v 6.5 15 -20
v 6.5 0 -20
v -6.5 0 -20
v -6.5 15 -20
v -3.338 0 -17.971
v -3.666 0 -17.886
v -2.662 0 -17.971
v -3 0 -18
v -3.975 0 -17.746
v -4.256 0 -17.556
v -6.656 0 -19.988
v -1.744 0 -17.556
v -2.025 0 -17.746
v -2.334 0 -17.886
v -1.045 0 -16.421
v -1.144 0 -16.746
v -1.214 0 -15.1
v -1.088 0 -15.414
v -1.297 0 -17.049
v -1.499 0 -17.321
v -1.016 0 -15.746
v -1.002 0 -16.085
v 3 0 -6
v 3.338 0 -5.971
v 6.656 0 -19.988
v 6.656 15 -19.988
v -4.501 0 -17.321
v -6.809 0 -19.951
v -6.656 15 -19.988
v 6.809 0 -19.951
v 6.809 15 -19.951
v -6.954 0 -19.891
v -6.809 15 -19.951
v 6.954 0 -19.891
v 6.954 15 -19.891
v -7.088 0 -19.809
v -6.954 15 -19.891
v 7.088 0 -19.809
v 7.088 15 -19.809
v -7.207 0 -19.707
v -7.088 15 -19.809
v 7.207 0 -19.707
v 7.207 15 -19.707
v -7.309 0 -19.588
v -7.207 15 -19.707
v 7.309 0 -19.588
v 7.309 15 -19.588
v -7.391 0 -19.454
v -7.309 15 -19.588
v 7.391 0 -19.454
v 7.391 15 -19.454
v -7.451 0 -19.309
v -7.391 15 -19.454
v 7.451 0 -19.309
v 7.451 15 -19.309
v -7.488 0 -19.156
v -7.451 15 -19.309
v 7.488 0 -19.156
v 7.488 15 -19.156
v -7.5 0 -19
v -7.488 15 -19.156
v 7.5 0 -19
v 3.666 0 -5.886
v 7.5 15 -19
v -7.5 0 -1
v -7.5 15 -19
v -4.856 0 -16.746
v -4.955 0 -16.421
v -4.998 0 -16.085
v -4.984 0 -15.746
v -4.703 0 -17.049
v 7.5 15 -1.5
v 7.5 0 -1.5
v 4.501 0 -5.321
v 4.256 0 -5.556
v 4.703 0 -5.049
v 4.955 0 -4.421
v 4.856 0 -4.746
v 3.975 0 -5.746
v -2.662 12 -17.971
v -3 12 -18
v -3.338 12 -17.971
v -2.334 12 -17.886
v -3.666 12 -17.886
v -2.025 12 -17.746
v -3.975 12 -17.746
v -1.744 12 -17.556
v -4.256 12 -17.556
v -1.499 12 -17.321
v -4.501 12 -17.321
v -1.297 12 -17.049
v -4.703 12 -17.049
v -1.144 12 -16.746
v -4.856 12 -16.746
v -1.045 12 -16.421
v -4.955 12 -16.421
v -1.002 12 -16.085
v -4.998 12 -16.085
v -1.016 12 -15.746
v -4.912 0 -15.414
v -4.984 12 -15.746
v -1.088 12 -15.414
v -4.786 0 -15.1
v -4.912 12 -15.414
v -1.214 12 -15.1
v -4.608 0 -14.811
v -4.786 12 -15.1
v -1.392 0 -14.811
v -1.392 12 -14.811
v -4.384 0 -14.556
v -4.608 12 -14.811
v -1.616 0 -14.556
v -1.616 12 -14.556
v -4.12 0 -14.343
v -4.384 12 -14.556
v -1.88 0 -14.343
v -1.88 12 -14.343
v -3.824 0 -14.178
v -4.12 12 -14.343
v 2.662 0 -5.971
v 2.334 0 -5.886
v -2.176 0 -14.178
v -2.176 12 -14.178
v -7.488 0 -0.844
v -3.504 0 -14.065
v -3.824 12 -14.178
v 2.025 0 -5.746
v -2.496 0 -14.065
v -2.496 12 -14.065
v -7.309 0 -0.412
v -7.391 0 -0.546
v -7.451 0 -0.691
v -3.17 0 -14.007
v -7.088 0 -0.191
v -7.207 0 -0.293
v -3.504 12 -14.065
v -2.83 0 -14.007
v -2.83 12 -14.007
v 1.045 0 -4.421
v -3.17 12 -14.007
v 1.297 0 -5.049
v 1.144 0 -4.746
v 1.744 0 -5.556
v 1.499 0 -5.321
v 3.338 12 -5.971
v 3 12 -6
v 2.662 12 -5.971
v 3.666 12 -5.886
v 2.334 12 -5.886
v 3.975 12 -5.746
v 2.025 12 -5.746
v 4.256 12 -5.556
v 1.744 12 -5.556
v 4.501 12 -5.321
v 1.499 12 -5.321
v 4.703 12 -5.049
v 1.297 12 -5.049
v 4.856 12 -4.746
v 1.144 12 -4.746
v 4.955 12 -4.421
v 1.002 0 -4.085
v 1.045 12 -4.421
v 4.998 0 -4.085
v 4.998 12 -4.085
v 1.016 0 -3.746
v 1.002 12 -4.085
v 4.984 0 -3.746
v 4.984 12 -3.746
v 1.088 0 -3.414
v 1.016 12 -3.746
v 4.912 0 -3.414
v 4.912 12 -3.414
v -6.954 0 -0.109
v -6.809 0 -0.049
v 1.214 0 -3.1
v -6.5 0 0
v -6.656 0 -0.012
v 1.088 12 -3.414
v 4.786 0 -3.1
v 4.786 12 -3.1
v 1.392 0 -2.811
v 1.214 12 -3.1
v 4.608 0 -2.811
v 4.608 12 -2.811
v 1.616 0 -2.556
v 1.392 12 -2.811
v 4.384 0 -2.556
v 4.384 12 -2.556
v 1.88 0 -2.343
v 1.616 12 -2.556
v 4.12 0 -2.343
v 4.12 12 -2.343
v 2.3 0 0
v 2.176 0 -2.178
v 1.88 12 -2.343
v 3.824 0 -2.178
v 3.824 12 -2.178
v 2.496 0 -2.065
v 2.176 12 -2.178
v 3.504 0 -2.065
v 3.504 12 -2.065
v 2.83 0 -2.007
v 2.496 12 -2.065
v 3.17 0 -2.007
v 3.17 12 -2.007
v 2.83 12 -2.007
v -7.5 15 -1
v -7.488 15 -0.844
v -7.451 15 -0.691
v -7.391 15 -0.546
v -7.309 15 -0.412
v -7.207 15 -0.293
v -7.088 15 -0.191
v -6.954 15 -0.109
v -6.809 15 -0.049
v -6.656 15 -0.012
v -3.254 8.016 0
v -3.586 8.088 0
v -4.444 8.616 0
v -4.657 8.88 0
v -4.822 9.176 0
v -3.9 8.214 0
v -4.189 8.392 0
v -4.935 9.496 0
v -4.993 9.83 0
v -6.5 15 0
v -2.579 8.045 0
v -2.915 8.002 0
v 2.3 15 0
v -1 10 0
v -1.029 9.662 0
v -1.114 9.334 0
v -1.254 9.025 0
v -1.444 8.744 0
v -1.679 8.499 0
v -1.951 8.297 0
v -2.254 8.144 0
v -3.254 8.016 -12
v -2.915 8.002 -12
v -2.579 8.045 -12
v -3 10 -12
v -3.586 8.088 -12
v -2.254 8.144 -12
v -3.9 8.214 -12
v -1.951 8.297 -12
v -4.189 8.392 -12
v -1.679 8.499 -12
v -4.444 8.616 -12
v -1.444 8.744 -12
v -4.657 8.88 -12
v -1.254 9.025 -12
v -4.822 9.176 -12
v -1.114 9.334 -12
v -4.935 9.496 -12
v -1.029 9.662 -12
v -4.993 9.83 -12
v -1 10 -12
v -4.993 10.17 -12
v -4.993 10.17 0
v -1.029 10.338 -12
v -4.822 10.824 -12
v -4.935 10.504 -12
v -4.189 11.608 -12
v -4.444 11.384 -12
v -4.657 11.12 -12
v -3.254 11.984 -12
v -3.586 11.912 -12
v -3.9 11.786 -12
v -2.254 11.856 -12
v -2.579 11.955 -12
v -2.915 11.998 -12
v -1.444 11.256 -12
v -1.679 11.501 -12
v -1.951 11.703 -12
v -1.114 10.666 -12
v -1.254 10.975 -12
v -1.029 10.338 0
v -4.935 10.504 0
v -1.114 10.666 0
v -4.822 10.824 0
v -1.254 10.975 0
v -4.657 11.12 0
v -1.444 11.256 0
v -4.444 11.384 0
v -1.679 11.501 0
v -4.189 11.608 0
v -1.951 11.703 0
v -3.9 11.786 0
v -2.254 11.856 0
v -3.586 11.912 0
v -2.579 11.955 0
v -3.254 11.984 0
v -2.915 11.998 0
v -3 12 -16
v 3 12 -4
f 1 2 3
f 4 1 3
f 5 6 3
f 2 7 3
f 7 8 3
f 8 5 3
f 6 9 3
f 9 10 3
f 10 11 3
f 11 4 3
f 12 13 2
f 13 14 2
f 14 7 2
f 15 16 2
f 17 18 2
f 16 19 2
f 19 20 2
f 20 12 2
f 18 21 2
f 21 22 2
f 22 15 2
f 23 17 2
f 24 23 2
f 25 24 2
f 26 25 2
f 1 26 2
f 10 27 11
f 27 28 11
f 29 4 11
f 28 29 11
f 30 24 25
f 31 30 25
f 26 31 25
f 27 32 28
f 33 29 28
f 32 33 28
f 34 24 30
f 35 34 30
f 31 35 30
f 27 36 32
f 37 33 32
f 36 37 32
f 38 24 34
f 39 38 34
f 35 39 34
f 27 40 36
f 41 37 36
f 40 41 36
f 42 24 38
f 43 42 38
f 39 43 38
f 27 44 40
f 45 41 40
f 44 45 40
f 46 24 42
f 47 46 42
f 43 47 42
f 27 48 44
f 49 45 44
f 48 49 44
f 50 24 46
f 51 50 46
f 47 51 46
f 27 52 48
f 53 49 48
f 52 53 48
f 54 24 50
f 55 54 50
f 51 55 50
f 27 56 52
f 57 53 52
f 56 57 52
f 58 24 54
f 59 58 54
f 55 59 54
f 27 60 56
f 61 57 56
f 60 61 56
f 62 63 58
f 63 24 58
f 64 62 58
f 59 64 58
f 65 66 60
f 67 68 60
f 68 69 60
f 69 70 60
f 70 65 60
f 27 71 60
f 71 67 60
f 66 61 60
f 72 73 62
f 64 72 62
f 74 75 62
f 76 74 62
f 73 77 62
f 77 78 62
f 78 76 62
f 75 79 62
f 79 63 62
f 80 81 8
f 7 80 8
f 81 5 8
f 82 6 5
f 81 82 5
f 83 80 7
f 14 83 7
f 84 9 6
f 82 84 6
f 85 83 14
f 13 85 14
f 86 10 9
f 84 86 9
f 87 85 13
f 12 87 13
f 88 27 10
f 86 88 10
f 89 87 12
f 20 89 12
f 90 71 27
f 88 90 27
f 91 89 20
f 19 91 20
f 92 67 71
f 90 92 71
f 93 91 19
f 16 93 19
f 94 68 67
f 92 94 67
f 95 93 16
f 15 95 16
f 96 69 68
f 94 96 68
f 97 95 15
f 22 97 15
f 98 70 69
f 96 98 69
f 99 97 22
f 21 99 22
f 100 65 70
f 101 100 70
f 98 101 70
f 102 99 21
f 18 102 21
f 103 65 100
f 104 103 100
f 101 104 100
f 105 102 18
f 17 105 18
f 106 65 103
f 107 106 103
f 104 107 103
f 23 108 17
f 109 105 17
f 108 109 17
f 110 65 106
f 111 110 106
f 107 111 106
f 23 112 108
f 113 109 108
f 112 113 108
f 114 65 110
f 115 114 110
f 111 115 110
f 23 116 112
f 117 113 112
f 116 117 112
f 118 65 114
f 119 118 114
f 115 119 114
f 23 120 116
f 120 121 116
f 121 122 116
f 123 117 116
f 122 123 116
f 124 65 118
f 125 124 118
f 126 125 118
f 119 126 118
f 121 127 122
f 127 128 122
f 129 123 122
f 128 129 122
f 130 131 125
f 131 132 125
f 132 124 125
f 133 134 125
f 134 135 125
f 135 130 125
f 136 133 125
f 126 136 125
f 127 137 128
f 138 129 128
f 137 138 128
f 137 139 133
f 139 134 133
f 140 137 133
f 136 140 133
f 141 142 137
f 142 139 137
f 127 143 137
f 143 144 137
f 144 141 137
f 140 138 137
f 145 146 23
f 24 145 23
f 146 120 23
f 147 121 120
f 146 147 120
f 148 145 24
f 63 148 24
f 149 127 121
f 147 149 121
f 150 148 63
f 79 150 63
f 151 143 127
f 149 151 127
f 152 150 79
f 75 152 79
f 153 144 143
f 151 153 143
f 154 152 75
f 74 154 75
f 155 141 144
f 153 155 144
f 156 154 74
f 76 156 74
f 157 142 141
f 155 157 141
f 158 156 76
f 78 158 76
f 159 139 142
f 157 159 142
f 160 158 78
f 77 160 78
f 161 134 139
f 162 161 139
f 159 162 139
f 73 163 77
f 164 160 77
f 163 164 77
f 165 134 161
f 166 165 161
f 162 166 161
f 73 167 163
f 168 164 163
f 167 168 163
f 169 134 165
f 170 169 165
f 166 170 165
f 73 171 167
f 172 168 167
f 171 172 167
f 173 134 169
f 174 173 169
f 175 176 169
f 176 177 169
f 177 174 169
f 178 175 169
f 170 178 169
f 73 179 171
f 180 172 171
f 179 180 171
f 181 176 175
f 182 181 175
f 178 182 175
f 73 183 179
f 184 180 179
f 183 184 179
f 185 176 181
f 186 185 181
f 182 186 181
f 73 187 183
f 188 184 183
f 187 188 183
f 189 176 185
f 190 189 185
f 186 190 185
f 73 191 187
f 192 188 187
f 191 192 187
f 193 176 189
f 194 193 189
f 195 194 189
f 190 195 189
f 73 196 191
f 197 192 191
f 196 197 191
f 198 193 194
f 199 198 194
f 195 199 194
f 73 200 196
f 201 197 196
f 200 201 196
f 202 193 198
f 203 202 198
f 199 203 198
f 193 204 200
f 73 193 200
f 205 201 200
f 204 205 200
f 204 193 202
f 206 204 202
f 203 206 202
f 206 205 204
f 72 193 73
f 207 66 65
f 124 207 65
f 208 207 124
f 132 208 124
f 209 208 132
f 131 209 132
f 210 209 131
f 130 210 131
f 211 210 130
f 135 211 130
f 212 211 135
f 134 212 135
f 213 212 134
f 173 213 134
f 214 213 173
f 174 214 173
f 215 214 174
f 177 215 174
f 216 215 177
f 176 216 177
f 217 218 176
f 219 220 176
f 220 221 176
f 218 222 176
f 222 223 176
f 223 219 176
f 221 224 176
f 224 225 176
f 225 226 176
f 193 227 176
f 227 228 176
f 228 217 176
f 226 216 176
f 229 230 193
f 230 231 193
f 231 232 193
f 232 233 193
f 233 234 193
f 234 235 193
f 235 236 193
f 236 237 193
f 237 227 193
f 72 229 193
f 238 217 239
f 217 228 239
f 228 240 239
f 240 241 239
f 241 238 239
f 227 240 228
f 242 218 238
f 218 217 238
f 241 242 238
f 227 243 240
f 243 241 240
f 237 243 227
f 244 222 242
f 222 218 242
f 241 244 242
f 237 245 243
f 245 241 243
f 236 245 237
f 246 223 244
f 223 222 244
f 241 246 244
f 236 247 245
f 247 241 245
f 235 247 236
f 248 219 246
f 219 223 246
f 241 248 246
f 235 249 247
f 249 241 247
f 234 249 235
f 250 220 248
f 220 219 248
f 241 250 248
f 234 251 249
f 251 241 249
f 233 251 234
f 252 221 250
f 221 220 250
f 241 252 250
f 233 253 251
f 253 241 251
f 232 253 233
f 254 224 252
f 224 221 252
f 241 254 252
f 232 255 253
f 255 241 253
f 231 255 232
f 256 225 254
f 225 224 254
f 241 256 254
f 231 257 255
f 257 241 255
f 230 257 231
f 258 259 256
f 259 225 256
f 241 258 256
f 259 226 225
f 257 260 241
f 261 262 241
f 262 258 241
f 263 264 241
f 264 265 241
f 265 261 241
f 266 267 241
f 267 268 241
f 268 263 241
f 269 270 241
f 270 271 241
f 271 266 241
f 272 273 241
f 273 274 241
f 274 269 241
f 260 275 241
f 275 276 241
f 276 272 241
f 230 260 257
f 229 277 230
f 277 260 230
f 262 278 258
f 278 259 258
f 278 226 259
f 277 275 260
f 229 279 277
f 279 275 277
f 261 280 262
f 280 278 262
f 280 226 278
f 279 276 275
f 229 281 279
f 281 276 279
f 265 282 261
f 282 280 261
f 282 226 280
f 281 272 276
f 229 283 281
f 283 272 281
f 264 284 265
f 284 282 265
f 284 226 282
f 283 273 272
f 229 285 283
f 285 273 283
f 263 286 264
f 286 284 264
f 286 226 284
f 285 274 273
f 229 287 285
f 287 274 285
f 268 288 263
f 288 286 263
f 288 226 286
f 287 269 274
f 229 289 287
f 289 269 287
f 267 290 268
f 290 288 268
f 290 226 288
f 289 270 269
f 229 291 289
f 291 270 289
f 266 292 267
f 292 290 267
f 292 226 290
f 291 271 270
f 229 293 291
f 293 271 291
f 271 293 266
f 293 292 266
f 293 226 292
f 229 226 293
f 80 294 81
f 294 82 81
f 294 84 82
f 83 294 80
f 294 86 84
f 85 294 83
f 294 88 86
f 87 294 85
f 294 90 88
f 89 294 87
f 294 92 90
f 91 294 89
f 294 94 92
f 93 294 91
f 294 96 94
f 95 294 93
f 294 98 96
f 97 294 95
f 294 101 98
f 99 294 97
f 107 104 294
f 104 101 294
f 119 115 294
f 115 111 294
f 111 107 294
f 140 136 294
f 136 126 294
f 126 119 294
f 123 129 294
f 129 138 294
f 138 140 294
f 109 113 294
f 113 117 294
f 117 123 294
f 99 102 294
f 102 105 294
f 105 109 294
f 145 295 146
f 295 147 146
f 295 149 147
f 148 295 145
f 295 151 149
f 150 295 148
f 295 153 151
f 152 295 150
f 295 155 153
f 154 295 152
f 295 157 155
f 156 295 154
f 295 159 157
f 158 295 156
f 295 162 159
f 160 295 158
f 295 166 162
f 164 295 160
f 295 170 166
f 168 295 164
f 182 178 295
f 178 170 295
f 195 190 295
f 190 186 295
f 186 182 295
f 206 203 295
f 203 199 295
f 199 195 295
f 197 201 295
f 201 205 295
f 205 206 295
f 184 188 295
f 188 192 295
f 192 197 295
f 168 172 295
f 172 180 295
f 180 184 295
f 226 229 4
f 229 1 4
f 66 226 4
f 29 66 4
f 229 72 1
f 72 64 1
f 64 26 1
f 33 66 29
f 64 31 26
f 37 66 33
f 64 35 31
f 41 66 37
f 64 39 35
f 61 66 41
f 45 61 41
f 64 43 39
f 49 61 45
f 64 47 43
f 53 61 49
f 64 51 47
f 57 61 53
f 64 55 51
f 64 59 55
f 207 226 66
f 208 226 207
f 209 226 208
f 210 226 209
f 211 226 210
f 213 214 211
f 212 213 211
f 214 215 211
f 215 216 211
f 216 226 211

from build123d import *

# Parameters (mm, degrees)
BOSS_EXTRU_1_DEPTH      = 15
ESQUISSE2_R             = 2
ENL_V_MAT_EXTRU_1_DEPTH = 12
ESQUISSE3_R             = 2
ENL_V_MAT_EXTRU_2_DEPTH = 12
CONG_1_R                = 1
ENL_V_MAT_EXTRU_3_REACH = 28.101


with BuildPart() as part:
    # Esquisse1 → Boss.-Extru.1 (new body)
    with BuildSketch(Plane(origin=(0, 0, 0), x_dir=(1, 0, 0), z_dir=(0, 1, 0))):
        Polygon((0, 0), (7.5, 0), (7.5, 20), (-7.5, 20), (-7.5, 0), align=None)
    extrude(amount=BOSS_EXTRU_1_DEPTH)

    # Esquisse2 → Enlèv. mat.-Extru.1 (cut)
    with BuildSketch(Plane.XZ):
        with Locations(Location((-3, -16, 0), (0, 0, 270))):
            Circle(ESQUISSE2_R)
        with Locations(Location((3, -4, 0), (0, 0, 270))):
            Circle(ESQUISSE2_R)
    extrude(amount=-ENL_V_MAT_EXTRU_1_DEPTH, mode=Mode.SUBTRACT)

    # Esquisse3 → Enlèv. mat.-Extru.2 (cut)
    with BuildSketch(Plane.XY):
        with Locations((-3, 10)):
            Circle(ESQUISSE3_R)
    extrude(amount=-ENL_V_MAT_EXTRU_2_DEPTH, mode=Mode.SUBTRACT)

    # Congé1
    cong_1_edges = [part.edges().sort_by_distance(p)[0] for p in [
        (-7.5, 7.5, 0),
        (-7.5, 7.5, -20),
        (7.5, 7.5, -20),
    ]]
    fillet(cong_1_edges, radius=CONG_1_R)

    # Esquisse5 → Enlèv. mat.-Extru.3 (cut, up to next)
    with BuildSketch(Plane(origin=(0, 15, 0), x_dir=(1, 0, 0), z_dir=(0, 1, 0)), mode=Mode.PRIVATE) as enl_v_mat_extru_3_sk1:
        Polygon((7.5, 0), (2.3, 0), (7.5, 1.5), align=None)
    enl_v_mat_extru_3_tool1 = extrude(enl_v_mat_extru_3_sk1.sketch, amount=-ENL_V_MAT_EXTRU_3_REACH, mode=Mode.PRIVATE) & part.part
    add(enl_v_mat_extru_3_tool1.solids().sort_by_distance((5.766667, 15, -0.5))[0], mode=Mode.SUBTRACT)


solid = part.part
